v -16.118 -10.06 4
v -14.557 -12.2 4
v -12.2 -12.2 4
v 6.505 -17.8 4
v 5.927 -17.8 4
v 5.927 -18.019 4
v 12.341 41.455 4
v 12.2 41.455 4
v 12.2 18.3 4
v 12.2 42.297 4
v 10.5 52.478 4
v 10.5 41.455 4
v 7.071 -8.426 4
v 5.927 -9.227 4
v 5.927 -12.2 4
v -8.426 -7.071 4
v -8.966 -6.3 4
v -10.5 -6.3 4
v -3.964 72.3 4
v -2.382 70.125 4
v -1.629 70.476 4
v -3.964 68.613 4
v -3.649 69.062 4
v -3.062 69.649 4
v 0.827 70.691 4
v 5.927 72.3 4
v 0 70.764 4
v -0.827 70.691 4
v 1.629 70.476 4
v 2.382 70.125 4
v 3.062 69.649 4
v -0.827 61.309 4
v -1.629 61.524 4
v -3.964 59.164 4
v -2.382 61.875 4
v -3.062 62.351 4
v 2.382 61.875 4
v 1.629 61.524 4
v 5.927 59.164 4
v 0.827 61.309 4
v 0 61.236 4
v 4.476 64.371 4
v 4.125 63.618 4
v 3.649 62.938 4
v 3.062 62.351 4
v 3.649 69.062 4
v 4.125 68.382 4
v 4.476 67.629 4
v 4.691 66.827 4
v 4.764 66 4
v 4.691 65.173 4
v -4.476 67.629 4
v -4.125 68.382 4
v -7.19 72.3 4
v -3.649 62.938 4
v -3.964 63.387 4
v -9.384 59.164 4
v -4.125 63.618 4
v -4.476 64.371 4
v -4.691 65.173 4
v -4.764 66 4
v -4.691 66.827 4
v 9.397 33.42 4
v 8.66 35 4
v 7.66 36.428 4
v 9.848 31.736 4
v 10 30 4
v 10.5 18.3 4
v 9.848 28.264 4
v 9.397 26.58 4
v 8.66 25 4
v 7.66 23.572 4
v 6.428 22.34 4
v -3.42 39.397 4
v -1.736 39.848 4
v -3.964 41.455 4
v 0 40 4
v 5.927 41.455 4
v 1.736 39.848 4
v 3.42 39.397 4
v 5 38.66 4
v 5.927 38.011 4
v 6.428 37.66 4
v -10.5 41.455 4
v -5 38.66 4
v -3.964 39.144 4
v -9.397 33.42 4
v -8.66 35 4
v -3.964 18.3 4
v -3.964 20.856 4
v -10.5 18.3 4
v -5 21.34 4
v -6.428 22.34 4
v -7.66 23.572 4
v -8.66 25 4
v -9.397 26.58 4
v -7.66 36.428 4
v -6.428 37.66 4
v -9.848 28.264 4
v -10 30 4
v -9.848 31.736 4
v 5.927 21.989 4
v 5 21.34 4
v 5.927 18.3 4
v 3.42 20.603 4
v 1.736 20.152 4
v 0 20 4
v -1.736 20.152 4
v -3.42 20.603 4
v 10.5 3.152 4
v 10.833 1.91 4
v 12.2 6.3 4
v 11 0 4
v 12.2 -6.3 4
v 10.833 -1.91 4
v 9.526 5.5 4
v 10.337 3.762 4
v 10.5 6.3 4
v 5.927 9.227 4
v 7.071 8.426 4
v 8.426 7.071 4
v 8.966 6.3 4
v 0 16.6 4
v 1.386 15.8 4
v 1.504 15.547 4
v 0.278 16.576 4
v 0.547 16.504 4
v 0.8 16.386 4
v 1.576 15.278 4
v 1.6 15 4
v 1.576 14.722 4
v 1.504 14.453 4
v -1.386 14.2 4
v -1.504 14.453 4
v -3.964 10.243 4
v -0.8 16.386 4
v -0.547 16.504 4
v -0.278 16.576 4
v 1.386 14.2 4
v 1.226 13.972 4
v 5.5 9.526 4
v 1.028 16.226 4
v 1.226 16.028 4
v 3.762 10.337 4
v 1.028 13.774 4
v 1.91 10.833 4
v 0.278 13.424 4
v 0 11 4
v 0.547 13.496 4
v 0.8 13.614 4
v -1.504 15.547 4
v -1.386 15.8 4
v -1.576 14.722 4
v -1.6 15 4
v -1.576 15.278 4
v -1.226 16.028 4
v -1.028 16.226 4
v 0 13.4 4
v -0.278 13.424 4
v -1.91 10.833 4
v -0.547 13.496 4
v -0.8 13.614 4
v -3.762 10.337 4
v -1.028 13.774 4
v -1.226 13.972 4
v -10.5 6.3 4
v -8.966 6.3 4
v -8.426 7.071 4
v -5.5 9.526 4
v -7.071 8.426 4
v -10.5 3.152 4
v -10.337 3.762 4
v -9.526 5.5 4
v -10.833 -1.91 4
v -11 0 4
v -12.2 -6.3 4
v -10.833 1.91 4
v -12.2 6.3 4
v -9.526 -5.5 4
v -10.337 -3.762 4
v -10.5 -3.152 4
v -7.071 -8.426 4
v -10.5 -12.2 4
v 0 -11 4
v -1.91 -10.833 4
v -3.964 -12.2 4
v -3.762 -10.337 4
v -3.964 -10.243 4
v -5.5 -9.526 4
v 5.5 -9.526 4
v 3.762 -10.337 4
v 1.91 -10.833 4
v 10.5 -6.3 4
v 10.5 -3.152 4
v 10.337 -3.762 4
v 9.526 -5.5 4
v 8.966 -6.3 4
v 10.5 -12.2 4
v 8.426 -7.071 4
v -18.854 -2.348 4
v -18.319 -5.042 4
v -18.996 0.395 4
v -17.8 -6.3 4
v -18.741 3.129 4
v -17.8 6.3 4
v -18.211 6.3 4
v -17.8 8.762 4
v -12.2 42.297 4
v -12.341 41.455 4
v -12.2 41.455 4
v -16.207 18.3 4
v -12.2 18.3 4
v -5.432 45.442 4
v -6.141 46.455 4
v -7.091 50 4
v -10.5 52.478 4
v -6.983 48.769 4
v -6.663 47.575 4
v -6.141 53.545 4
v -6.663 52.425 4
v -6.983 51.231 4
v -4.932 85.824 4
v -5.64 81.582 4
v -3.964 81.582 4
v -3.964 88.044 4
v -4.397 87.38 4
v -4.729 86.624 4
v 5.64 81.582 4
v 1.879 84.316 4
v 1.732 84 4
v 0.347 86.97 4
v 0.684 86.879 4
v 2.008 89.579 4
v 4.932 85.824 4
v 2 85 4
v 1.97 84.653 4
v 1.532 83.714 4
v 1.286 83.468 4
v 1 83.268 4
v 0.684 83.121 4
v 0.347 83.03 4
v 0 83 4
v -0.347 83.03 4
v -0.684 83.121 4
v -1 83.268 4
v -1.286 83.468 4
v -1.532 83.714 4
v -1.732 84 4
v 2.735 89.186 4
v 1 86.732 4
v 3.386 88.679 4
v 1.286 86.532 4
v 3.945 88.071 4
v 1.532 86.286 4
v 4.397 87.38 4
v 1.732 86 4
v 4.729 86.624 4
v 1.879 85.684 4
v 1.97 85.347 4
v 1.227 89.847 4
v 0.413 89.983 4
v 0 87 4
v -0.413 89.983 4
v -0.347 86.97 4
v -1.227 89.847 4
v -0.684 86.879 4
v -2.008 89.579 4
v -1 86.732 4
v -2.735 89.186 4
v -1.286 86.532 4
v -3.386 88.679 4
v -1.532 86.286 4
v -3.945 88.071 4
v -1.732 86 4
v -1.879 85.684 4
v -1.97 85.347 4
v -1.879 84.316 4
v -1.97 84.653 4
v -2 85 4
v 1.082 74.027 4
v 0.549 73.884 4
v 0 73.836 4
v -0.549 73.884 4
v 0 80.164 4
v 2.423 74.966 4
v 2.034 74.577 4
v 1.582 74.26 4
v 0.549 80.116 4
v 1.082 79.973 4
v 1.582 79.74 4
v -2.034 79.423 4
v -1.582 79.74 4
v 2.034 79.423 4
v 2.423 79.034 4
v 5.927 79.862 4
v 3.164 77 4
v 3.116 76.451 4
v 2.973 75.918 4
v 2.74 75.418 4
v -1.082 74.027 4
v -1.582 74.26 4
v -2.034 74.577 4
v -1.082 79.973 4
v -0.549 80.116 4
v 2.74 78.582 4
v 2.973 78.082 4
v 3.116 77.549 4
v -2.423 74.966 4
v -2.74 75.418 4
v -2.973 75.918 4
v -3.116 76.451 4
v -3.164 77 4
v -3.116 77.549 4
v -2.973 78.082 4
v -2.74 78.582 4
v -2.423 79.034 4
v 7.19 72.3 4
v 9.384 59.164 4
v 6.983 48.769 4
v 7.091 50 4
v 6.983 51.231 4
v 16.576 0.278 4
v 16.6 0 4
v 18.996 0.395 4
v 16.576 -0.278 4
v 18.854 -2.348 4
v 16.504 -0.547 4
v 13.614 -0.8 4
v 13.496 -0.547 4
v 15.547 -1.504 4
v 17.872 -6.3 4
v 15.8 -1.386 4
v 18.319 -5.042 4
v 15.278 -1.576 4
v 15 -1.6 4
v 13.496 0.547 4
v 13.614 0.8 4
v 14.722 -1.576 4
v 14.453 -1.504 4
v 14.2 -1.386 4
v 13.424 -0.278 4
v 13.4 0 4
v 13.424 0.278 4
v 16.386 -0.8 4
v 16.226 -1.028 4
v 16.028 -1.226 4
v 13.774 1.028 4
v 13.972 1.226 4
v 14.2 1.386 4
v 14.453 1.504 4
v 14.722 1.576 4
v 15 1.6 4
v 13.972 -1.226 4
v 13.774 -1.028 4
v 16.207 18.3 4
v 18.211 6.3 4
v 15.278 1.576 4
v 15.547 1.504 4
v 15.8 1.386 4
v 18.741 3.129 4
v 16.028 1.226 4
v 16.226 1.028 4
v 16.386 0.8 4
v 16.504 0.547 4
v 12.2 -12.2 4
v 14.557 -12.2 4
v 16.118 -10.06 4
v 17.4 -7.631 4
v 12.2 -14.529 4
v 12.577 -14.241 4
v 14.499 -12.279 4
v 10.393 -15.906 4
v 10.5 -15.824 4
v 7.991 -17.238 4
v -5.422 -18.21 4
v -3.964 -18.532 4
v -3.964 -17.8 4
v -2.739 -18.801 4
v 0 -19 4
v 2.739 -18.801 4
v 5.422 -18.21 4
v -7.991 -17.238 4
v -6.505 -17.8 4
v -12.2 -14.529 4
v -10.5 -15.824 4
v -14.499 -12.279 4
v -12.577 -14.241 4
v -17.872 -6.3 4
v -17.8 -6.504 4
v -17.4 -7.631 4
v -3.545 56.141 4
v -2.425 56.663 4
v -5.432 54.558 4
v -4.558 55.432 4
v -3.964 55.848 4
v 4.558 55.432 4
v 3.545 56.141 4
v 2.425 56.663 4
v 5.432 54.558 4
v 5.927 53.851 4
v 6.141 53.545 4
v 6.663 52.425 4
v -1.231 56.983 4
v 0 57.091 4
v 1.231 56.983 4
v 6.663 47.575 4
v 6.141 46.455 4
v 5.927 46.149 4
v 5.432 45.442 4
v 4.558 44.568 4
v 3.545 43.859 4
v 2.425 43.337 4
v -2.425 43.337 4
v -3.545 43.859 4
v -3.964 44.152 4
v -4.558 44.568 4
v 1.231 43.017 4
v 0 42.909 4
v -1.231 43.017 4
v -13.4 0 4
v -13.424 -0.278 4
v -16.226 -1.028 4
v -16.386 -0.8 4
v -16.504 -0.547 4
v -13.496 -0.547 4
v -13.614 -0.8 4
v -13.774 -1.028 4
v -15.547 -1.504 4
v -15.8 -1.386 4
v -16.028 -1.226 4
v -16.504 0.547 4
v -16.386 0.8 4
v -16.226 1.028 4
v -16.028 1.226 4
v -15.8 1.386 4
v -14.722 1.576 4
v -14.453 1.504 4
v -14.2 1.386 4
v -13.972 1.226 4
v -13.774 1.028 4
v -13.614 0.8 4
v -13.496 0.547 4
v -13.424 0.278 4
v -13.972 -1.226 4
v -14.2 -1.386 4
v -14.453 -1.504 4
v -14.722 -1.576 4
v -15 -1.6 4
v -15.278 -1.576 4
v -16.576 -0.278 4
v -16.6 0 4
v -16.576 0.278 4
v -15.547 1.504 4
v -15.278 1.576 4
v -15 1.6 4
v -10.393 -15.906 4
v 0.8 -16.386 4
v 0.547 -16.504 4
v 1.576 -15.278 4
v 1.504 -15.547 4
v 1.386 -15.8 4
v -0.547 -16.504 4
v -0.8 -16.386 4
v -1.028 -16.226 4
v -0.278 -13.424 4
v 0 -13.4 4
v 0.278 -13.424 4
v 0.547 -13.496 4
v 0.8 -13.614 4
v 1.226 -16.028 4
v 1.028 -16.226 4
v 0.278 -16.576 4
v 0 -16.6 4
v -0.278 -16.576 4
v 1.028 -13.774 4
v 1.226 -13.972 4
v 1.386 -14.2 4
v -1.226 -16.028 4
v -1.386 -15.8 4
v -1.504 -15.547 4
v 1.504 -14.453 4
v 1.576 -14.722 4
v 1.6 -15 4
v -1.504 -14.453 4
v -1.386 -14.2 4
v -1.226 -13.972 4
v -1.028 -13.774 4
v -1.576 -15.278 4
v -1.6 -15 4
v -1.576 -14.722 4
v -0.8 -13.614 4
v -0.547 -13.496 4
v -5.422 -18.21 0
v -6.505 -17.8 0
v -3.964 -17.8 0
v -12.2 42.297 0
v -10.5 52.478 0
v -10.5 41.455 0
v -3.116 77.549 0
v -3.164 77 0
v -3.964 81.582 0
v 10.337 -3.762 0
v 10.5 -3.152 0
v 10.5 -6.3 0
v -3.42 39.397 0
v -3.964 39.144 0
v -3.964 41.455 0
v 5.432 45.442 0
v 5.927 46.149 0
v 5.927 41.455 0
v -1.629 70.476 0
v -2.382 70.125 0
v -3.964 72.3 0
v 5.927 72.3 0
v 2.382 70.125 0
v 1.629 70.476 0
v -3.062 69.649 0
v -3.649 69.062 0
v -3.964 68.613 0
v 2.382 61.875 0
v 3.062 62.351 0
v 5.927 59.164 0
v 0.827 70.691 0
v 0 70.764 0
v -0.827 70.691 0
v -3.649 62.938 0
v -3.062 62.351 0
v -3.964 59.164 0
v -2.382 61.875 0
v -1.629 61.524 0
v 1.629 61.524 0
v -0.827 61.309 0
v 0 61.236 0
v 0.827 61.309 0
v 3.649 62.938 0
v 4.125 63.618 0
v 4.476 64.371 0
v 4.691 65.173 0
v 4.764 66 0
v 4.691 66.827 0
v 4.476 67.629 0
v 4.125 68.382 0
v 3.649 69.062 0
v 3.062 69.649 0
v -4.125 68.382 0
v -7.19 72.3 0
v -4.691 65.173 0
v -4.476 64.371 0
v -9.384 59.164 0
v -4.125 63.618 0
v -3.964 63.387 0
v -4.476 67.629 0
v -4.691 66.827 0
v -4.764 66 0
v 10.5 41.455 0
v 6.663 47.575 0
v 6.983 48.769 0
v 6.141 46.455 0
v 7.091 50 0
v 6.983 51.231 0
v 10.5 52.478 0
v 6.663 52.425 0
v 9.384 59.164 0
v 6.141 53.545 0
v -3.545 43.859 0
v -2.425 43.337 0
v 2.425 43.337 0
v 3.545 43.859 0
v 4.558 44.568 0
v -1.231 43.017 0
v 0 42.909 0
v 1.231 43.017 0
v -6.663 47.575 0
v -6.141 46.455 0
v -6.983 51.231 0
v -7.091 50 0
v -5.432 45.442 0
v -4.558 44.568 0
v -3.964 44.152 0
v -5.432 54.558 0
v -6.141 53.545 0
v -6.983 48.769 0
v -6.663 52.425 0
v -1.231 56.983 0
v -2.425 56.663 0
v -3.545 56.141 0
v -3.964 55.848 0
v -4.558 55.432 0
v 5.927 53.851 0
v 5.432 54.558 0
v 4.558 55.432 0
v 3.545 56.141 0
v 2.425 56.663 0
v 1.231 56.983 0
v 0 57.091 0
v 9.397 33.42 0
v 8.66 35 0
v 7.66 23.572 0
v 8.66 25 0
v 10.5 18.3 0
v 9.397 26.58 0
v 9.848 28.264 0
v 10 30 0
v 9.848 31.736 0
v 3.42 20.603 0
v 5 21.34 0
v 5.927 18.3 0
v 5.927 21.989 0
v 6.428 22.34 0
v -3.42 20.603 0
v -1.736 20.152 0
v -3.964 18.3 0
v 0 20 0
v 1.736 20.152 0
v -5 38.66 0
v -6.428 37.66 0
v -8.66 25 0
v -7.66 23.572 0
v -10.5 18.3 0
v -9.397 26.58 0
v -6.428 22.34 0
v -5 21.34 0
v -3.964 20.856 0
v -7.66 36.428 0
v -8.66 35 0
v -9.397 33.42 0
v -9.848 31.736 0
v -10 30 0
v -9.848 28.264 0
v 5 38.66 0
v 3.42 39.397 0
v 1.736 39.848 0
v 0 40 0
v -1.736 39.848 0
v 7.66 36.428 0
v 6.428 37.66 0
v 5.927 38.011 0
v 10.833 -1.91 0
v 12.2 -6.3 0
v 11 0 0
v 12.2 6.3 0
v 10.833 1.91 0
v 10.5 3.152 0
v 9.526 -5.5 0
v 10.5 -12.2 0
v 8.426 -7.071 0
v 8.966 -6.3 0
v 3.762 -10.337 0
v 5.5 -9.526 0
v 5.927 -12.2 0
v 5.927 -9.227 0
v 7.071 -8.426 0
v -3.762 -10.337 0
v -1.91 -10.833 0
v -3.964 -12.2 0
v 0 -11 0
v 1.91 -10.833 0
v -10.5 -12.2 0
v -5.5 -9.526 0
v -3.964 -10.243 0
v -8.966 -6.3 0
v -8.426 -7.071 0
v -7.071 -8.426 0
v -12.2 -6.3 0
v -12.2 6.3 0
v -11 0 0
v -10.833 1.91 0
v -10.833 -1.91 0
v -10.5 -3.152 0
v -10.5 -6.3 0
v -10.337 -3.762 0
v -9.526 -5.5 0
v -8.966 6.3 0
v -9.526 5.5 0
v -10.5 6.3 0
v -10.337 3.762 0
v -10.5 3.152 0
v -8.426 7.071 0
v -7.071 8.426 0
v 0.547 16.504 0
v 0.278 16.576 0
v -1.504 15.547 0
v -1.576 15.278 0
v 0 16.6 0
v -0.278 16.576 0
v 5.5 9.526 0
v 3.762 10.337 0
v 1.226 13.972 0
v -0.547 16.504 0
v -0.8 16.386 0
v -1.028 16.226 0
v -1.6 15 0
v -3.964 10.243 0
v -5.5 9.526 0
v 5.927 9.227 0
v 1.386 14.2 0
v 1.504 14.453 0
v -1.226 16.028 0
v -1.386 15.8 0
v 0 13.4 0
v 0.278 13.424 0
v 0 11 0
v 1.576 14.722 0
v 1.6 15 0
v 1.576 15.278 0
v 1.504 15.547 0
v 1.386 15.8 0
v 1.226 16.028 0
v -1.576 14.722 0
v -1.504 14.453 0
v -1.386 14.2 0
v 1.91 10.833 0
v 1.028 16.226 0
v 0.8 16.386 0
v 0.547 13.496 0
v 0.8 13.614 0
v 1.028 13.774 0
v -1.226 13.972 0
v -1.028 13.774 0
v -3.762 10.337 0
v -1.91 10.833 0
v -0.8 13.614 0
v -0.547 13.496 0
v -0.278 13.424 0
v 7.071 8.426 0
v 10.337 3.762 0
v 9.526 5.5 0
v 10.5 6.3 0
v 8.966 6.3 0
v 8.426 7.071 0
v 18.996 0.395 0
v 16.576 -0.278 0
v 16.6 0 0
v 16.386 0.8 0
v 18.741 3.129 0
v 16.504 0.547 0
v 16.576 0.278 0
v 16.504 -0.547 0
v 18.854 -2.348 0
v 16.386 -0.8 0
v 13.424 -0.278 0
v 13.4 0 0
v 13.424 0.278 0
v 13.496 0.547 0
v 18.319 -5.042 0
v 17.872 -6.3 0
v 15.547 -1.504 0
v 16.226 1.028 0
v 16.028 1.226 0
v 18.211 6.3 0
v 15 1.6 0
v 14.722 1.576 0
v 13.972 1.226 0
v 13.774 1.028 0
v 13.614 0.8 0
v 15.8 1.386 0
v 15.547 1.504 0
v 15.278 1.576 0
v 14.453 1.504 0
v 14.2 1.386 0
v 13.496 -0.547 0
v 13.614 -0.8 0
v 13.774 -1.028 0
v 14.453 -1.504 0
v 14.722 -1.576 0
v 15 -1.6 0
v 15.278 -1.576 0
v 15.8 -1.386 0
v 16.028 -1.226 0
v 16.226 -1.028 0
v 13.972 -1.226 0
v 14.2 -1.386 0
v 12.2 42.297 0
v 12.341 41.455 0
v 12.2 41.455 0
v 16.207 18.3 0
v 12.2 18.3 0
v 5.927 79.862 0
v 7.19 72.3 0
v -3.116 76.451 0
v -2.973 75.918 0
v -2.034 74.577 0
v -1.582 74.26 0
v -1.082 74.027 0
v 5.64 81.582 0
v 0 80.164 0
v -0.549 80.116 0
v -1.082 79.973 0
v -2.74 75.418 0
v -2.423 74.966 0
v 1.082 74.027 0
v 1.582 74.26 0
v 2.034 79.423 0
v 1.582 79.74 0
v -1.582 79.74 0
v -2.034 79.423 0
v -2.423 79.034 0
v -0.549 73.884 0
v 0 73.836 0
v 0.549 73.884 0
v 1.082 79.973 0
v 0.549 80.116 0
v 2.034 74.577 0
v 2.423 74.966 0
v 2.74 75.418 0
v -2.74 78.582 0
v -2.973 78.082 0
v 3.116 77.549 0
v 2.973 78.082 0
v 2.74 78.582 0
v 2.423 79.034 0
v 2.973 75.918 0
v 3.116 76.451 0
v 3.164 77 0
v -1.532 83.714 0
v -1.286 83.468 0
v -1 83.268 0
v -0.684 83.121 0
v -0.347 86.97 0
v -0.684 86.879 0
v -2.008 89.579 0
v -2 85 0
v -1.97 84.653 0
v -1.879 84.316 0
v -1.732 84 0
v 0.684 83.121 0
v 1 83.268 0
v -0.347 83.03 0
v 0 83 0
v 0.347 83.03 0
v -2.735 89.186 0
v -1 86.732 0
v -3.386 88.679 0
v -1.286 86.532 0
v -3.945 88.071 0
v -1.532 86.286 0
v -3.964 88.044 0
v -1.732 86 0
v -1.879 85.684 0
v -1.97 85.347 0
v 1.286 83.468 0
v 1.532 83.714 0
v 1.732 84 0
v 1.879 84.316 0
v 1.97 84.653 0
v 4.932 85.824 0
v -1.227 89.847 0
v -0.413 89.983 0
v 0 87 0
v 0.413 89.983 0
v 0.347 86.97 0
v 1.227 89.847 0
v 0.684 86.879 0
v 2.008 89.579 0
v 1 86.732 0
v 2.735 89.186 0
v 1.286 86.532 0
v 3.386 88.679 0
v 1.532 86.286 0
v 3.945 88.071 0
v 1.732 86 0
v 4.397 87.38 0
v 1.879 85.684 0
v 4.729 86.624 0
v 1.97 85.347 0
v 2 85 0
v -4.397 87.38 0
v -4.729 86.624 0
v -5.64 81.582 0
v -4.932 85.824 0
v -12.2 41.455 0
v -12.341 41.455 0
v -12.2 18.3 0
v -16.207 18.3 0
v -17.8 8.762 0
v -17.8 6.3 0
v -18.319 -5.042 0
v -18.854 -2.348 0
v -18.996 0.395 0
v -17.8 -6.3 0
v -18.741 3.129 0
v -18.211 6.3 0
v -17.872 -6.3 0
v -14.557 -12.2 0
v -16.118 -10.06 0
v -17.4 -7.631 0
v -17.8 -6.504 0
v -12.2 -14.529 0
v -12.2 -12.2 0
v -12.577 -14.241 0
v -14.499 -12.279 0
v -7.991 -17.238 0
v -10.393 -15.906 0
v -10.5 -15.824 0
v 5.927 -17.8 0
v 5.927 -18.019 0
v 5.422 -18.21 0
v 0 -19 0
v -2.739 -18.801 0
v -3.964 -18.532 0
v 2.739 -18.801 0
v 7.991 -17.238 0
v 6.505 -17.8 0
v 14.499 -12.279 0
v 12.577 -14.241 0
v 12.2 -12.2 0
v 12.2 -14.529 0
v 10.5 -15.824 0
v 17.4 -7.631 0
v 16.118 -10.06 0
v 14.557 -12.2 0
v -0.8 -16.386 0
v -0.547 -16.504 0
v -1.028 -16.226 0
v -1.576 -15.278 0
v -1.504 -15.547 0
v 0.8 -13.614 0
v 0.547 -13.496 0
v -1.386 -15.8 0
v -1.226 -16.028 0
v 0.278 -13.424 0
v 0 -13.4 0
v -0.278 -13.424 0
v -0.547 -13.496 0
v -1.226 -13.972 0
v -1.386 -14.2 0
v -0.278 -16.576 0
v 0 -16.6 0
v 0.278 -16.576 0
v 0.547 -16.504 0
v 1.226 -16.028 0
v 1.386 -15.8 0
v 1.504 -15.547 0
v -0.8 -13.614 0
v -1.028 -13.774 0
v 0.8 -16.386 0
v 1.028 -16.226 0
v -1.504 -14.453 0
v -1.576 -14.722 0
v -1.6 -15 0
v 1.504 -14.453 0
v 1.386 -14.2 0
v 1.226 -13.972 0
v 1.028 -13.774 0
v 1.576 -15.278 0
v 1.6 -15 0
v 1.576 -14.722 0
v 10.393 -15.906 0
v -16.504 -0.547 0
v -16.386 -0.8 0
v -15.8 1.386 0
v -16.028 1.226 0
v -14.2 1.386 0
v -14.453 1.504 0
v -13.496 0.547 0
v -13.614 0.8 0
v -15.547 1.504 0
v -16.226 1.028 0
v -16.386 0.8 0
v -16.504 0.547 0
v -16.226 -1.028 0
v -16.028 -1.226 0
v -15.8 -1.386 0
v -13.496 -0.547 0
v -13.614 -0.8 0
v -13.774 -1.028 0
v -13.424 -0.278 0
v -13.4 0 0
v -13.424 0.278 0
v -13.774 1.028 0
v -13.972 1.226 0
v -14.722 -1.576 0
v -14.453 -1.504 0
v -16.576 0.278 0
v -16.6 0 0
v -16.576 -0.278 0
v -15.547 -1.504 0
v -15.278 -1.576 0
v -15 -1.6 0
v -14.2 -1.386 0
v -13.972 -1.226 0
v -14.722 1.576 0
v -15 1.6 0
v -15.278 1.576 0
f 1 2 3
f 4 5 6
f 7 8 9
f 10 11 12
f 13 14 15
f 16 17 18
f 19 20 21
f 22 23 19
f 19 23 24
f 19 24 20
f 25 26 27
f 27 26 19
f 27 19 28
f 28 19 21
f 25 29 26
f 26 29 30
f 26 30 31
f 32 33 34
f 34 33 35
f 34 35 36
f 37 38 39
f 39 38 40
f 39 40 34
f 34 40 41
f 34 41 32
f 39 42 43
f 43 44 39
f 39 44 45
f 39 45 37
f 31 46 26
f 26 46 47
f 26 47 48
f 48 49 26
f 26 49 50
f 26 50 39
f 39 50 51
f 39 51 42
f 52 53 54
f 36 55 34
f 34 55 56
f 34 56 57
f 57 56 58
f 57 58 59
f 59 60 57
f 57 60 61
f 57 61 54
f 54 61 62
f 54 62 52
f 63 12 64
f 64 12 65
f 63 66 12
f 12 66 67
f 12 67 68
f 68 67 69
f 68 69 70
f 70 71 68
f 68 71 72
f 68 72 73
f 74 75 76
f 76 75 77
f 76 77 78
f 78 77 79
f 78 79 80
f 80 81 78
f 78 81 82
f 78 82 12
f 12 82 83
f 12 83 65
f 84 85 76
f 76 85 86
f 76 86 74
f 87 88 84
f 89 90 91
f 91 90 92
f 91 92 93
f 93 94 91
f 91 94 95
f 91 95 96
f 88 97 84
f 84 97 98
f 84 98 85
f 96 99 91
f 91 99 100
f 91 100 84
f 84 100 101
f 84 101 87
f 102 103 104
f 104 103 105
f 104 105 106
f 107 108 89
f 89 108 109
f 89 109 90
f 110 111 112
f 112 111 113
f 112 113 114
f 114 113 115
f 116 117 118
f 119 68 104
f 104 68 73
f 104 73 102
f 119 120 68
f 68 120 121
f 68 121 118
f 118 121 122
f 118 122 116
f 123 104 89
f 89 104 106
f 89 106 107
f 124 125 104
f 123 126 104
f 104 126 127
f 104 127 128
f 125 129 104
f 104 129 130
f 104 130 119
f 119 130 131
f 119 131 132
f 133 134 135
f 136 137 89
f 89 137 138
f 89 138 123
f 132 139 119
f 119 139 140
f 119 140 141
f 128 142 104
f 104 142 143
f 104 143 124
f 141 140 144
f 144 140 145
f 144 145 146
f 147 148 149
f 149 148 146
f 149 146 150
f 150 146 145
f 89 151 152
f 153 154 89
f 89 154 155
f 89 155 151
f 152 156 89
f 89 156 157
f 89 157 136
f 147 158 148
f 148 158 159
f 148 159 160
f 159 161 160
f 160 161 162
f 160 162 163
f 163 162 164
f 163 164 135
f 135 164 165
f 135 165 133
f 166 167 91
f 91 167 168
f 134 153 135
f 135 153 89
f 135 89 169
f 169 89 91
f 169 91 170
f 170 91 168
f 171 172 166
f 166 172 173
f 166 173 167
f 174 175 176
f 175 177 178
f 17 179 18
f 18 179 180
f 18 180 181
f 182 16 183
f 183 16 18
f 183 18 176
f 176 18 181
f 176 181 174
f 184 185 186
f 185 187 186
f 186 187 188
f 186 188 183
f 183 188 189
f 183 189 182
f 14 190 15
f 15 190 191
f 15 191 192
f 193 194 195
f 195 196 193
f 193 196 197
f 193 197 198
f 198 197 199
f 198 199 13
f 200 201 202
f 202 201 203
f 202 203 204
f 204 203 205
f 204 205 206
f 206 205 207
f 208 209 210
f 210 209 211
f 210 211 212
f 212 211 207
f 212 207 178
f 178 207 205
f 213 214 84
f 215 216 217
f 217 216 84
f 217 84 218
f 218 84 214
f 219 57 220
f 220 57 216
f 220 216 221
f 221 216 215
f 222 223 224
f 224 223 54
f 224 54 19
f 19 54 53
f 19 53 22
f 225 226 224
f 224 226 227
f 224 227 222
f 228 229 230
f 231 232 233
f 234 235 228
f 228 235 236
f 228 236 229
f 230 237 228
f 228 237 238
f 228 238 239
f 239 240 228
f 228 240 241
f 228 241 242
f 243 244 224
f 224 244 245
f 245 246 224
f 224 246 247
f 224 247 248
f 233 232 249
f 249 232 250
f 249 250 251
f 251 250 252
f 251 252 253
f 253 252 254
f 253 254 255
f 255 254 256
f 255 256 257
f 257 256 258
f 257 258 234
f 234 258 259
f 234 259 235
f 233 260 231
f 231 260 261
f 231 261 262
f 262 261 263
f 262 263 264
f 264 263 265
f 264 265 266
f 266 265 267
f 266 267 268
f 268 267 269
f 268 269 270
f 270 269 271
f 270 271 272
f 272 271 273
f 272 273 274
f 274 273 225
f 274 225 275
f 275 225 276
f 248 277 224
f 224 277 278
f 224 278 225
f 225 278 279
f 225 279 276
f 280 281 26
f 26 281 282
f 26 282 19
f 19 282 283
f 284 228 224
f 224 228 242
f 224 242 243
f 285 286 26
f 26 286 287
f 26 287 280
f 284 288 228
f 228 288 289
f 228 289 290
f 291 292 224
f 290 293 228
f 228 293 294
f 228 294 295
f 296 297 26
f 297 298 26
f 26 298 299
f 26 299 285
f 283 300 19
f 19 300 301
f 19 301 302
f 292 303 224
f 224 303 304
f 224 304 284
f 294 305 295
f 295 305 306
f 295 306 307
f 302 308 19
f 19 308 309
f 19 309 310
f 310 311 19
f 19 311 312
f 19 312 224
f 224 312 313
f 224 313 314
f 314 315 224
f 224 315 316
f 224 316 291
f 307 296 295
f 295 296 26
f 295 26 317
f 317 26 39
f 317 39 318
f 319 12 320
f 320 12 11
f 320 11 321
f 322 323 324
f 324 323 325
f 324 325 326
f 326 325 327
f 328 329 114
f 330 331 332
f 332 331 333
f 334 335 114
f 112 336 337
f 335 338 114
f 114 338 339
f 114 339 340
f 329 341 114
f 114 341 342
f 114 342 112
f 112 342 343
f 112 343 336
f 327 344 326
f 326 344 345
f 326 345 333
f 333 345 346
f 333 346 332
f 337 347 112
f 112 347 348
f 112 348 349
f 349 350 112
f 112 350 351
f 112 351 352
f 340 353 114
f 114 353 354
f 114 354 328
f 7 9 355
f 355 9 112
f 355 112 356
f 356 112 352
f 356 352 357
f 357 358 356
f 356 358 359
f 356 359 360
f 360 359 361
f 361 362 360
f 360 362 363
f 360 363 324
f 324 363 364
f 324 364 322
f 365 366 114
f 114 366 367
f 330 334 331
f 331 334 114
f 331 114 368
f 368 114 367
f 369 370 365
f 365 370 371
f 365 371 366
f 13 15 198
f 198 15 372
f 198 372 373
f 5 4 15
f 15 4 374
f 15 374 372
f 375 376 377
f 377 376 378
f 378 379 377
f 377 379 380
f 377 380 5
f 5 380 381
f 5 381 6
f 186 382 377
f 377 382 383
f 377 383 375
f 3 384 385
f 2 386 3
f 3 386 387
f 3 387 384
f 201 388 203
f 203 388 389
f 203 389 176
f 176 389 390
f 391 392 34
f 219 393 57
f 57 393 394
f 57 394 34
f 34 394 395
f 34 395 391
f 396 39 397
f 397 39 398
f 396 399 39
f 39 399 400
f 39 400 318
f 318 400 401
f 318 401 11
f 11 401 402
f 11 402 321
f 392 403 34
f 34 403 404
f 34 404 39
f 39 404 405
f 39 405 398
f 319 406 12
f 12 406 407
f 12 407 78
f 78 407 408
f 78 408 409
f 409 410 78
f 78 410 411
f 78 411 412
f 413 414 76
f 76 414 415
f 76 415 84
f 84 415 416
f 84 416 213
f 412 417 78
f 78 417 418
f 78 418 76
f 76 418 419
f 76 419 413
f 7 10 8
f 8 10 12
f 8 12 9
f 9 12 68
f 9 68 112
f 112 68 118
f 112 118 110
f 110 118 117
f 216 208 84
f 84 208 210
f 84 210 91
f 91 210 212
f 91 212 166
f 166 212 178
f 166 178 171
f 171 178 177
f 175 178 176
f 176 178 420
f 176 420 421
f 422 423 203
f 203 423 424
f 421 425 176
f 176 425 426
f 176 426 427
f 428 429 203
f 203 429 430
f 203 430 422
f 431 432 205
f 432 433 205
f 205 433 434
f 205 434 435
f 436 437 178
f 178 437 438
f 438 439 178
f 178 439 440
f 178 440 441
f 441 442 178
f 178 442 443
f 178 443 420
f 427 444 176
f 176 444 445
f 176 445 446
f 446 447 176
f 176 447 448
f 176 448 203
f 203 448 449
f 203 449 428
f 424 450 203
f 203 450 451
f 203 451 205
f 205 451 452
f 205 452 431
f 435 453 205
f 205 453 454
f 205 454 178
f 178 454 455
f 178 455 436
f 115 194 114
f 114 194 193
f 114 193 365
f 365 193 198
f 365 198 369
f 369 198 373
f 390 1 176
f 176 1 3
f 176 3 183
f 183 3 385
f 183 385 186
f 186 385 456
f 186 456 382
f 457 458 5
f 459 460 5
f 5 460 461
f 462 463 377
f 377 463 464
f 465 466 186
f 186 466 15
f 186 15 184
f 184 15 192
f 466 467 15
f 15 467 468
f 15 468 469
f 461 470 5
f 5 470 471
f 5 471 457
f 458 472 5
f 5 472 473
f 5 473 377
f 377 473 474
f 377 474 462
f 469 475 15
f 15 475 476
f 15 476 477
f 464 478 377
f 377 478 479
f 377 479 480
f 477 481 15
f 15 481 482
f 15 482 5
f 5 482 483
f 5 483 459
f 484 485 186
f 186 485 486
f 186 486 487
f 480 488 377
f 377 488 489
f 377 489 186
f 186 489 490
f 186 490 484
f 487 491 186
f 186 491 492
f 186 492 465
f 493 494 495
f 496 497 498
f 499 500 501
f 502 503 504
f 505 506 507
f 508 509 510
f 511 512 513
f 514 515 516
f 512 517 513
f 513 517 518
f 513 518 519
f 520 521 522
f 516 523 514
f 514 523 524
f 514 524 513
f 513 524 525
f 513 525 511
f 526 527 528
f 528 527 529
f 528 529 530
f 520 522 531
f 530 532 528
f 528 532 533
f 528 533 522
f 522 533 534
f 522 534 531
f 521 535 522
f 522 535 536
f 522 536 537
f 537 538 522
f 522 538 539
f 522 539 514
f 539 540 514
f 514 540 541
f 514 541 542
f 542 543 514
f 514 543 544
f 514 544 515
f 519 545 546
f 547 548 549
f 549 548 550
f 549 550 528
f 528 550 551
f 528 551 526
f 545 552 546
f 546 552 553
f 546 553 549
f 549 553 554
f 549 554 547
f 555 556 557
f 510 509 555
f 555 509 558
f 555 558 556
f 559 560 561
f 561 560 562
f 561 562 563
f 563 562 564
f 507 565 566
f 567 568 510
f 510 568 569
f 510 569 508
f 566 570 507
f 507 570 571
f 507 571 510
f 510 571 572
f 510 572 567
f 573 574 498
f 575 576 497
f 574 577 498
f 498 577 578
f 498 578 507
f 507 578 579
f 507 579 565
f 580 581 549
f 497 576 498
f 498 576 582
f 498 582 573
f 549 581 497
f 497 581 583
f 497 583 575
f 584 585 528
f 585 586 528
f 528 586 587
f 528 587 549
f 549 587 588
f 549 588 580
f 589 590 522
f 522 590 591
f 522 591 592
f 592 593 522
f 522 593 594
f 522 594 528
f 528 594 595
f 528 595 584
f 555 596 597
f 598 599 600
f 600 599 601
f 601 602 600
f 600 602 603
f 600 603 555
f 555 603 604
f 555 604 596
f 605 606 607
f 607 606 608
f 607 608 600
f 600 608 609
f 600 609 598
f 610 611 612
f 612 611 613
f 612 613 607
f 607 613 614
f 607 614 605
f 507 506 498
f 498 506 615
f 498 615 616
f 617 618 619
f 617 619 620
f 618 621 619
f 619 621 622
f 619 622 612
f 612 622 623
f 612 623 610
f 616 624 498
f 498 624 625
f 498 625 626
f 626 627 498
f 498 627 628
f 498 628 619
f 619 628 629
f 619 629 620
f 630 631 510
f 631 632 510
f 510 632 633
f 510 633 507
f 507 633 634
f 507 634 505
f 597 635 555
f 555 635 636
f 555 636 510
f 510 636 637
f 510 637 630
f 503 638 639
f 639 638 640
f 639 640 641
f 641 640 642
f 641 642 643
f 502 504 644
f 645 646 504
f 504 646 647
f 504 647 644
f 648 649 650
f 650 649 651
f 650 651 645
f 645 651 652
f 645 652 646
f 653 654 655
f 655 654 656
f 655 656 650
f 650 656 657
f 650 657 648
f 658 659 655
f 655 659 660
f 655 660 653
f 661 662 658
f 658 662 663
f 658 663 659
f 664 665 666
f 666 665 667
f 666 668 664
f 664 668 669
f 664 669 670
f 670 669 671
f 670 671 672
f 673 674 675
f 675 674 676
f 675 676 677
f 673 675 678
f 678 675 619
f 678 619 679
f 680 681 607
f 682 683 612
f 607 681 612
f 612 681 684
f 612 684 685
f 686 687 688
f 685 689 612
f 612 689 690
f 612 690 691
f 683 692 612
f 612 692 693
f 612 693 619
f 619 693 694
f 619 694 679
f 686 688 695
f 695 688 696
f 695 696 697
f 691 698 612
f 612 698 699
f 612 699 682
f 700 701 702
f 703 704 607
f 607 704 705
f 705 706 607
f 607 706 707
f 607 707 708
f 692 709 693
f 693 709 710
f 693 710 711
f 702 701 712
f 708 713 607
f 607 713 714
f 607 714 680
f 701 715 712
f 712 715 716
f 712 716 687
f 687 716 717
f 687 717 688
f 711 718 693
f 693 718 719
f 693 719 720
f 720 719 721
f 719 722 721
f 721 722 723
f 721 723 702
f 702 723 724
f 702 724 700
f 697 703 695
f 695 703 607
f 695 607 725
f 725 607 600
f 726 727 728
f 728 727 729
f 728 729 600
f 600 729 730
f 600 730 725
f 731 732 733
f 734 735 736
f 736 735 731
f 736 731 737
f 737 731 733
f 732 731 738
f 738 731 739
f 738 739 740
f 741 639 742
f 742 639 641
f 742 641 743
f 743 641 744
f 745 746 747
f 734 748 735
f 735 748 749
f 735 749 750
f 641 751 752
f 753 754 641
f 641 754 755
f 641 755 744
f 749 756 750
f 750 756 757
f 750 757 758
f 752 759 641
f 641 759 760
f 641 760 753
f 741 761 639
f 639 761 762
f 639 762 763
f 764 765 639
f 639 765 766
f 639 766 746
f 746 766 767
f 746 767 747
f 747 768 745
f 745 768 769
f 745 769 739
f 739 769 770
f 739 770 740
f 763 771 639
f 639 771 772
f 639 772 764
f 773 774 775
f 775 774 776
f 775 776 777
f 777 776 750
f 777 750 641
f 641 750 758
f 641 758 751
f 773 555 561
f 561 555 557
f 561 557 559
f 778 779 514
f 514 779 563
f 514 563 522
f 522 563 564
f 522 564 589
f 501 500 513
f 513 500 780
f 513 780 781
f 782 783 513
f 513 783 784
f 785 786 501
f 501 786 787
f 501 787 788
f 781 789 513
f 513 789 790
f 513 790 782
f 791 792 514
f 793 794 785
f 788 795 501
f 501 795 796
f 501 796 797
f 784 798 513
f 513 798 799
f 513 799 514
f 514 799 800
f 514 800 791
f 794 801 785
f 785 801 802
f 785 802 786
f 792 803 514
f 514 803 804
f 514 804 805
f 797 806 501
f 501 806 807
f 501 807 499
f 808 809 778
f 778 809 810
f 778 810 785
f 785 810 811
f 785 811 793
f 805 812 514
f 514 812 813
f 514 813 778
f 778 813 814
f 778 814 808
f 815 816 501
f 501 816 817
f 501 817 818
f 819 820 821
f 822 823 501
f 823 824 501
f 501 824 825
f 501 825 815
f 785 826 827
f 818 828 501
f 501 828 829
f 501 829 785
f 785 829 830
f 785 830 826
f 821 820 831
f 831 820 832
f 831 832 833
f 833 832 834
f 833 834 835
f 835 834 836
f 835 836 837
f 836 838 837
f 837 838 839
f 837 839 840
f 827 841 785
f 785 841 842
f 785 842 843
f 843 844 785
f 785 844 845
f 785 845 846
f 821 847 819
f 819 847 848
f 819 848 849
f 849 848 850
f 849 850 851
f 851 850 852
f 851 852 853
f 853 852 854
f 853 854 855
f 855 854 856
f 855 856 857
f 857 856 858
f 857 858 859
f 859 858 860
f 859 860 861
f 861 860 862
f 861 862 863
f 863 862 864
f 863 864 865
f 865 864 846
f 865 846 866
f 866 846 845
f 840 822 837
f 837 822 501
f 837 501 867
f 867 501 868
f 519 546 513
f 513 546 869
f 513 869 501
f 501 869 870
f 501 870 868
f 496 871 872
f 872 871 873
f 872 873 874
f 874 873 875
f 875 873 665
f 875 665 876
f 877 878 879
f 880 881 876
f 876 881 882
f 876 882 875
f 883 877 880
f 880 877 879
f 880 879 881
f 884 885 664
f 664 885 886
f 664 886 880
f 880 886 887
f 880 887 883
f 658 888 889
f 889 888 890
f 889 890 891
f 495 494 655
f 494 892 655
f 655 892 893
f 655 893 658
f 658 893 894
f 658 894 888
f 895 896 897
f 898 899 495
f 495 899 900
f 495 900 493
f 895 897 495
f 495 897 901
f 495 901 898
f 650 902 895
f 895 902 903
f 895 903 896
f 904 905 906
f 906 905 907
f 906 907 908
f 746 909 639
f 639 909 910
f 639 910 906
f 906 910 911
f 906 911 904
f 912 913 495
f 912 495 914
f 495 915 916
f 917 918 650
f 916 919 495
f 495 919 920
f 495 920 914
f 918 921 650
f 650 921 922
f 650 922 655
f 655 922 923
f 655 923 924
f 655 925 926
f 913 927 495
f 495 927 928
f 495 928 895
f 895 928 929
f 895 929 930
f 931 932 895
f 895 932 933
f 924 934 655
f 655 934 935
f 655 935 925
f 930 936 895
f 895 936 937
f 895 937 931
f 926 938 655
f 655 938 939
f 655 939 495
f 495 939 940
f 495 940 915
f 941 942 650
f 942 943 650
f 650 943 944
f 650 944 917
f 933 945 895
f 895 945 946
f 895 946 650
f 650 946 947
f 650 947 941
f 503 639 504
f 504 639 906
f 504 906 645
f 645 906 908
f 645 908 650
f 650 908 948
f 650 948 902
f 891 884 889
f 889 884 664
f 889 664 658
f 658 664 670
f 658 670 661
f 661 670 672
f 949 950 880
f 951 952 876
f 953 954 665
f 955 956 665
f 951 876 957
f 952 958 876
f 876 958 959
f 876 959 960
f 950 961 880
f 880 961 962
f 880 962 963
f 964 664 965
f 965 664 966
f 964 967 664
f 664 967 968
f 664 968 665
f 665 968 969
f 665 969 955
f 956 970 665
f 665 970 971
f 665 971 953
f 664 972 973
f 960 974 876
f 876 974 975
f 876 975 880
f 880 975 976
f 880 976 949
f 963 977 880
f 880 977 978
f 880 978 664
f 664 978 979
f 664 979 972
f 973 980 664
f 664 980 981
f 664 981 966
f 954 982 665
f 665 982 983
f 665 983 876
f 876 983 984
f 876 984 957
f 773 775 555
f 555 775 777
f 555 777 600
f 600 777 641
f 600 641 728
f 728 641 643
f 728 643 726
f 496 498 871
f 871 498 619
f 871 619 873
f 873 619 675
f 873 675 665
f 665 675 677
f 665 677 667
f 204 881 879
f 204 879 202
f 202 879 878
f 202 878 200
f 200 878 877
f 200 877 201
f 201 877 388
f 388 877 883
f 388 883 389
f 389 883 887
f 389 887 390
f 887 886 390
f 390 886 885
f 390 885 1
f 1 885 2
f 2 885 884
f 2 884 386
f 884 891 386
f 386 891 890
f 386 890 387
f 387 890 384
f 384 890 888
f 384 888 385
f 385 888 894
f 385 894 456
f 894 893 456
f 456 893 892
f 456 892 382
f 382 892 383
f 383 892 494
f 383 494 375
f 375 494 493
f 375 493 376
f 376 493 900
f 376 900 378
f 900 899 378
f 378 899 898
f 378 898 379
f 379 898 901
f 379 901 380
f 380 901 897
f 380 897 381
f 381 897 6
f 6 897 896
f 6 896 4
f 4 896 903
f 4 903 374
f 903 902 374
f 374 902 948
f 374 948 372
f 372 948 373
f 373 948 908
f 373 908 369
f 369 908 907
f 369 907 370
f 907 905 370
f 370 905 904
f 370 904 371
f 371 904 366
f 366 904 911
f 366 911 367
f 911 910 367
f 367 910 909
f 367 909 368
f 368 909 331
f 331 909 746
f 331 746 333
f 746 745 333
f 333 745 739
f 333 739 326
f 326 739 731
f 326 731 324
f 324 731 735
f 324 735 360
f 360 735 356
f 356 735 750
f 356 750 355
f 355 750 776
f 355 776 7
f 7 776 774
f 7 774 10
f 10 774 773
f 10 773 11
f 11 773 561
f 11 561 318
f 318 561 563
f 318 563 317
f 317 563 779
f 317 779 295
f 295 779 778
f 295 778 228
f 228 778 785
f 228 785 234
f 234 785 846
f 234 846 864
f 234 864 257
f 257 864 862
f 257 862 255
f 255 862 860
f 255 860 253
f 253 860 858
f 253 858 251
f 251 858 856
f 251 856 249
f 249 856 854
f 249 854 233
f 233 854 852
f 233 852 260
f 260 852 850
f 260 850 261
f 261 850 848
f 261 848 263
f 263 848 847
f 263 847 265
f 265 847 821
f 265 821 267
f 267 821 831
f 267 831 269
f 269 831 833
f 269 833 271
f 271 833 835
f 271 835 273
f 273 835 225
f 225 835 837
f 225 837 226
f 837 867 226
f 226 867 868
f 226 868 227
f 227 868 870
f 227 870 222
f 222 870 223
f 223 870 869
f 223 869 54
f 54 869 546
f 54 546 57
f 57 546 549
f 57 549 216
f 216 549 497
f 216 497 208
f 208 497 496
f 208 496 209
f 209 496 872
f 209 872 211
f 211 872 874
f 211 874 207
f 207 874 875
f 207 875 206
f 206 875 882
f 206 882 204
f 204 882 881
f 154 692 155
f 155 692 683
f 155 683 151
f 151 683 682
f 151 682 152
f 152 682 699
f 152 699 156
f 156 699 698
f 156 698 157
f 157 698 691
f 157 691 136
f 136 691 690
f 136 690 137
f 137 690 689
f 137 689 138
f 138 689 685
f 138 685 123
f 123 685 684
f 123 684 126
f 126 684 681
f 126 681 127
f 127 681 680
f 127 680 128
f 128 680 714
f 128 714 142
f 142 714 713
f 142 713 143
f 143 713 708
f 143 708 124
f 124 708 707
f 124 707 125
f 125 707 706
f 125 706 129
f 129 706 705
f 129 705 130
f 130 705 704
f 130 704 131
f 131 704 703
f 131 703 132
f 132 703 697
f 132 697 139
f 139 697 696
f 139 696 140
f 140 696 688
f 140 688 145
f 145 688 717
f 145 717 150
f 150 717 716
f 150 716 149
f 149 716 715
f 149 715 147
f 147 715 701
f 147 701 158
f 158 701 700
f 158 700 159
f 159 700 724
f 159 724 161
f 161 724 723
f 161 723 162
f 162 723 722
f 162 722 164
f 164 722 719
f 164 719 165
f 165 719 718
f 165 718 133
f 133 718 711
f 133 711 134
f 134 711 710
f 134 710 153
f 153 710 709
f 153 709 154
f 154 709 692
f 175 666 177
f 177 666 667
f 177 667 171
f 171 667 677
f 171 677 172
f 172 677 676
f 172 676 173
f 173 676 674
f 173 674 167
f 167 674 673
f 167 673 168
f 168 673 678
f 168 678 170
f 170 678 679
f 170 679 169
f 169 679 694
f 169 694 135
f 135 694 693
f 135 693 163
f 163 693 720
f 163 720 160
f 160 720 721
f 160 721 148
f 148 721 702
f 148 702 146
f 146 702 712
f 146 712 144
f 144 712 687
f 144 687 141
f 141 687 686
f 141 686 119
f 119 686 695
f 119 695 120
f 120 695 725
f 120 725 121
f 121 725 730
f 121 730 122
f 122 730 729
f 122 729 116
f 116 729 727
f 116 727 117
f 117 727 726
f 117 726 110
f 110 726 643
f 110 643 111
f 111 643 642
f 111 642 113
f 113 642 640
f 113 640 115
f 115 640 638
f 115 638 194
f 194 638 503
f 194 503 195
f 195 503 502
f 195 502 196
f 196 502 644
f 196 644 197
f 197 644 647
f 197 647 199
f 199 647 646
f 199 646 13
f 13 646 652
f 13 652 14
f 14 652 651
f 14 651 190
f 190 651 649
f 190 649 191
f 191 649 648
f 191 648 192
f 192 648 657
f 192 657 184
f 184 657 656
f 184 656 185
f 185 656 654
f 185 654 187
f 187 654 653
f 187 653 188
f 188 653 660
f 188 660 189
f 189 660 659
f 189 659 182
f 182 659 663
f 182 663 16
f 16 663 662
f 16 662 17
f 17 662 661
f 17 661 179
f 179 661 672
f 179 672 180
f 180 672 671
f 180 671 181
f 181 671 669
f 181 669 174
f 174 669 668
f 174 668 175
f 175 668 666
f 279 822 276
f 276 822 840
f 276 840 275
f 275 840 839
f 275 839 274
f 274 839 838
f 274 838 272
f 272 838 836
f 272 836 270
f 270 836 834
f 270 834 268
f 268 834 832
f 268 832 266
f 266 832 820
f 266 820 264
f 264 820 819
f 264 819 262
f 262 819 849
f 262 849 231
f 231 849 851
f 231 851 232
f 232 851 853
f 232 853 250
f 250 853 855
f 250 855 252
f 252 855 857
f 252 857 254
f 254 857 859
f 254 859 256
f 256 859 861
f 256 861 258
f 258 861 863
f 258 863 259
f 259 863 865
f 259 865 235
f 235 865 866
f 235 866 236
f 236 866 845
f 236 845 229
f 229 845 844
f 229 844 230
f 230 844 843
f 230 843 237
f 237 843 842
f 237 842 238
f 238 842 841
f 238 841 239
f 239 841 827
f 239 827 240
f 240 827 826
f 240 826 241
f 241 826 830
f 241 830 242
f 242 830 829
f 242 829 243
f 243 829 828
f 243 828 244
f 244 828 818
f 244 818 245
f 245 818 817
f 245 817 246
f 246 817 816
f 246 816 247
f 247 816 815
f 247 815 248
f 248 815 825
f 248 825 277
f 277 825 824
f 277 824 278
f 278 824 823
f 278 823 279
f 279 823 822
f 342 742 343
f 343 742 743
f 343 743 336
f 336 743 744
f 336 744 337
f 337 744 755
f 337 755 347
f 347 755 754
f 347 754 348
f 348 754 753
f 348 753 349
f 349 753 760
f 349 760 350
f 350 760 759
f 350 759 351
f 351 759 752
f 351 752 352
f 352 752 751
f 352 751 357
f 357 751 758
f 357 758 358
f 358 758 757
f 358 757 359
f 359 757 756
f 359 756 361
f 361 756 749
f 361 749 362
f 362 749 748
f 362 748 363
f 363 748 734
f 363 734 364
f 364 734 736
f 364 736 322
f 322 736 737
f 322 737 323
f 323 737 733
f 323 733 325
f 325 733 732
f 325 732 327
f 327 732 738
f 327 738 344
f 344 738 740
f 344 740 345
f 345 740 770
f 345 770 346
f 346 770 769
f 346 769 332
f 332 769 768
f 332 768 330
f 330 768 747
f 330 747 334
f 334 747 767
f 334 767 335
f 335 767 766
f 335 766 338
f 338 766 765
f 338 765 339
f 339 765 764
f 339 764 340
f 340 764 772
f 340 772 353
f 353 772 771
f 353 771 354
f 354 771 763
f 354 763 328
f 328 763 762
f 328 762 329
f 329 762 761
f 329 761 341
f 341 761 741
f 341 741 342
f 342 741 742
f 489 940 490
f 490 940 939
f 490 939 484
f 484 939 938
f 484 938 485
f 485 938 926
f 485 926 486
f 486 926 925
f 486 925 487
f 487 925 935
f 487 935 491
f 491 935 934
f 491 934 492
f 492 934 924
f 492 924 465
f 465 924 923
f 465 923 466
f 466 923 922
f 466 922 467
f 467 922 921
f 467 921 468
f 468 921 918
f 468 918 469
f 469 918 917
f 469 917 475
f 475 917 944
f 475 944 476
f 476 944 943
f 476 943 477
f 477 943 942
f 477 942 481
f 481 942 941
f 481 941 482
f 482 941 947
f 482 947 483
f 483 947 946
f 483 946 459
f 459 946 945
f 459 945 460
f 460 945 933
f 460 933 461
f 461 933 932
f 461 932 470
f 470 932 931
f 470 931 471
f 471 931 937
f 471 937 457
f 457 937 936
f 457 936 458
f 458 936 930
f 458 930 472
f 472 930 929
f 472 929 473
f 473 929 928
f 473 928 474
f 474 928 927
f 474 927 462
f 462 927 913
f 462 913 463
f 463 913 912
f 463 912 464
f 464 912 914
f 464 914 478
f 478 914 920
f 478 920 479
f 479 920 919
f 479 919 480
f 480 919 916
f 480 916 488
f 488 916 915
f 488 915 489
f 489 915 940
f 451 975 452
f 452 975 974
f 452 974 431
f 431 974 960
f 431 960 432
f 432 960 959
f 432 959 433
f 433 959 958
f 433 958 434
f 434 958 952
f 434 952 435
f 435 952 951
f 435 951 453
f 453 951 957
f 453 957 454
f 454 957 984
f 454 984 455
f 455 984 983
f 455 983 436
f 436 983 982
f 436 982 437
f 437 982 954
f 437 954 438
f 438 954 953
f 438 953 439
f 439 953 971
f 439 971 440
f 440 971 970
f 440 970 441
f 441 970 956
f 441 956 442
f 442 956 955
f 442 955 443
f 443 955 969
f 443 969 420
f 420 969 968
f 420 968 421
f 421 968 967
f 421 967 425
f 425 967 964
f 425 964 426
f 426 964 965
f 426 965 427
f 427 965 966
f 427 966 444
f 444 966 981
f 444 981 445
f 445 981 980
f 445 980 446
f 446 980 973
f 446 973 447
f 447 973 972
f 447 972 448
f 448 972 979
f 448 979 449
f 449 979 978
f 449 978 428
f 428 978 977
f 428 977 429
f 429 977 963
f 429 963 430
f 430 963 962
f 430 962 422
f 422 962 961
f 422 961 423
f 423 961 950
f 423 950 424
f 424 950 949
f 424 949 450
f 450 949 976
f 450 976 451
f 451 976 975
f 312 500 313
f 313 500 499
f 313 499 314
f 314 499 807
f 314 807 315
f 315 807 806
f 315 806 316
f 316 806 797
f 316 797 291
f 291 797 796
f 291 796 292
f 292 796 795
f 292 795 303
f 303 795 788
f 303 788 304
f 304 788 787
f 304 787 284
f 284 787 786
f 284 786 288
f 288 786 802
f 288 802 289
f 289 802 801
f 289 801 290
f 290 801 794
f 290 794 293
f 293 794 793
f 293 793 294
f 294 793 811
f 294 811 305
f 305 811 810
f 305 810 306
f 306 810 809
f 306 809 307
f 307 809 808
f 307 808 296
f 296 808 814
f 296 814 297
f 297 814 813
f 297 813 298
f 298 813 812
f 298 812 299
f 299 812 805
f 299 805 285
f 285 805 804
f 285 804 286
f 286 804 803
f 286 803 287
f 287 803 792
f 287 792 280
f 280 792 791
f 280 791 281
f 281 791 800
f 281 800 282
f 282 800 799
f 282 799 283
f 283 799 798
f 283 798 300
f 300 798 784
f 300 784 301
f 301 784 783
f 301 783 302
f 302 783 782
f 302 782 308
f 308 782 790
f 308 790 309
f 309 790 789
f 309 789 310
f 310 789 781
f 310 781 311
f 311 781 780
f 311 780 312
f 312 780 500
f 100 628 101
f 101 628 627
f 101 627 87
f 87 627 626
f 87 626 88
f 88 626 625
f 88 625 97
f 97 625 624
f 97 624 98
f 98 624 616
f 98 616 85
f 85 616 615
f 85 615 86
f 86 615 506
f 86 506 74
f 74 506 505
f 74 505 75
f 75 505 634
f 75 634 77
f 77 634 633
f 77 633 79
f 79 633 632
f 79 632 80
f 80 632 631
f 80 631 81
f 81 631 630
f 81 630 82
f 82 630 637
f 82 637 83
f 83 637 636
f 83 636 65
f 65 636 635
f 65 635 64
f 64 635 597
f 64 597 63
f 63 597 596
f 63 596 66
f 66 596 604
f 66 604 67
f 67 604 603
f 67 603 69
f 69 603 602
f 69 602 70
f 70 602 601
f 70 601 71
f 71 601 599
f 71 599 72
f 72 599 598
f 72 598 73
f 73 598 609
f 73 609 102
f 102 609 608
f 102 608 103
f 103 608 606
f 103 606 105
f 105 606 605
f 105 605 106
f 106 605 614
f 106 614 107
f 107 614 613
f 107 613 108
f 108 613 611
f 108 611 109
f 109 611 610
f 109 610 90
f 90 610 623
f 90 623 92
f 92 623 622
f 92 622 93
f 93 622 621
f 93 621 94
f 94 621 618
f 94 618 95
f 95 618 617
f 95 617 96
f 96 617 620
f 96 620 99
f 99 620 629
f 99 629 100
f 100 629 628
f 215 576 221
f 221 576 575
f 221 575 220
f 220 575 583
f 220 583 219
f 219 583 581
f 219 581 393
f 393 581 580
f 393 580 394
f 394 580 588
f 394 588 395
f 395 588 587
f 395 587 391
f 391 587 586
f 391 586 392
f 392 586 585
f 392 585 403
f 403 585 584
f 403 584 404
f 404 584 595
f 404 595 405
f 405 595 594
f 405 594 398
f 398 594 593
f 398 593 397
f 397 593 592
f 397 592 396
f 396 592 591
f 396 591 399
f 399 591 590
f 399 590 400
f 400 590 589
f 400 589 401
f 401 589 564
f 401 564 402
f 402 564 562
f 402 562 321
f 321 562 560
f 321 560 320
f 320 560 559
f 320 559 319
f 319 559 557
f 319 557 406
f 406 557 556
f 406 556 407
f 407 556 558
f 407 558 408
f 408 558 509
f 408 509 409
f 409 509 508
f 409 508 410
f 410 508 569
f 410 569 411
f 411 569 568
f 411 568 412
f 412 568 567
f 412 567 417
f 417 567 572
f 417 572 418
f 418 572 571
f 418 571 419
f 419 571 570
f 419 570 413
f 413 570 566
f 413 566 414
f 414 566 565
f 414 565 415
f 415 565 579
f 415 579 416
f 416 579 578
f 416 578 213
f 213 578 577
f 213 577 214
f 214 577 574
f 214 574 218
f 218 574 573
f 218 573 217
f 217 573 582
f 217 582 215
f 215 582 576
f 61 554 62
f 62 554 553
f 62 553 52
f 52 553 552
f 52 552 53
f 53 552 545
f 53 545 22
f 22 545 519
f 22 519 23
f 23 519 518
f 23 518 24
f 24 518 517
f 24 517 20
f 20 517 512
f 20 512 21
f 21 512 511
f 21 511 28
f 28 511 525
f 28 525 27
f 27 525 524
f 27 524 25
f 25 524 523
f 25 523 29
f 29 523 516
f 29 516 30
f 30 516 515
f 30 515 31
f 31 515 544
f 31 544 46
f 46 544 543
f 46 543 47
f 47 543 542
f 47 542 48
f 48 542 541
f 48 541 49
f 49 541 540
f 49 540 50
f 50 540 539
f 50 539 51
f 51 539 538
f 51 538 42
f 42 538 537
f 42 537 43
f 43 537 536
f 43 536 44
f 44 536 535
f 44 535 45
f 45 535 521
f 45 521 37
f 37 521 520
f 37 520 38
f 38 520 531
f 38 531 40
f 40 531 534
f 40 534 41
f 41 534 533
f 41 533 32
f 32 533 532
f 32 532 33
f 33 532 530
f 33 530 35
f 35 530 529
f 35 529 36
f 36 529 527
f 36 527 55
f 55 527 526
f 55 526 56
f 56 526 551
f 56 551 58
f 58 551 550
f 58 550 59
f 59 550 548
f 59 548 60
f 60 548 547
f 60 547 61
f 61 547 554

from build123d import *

# Parameters (mm, degrees)
ESQUISSE1_R        = 1.6
ESQUISSE1_R_2      = 11
ESQUISSE1_R_3      = 2
ESQUISSE1_R_4      = 3.163636364
ESQUISSE1_R_5      = 10
ESQUISSE1_R_6      = 7.090909091
ESQUISSE1_R_7      = 4.763636364
BOSS_EXTRU_1_DEPTH = 4


with BuildPart() as part:
    # Esquisse1 → Boss.-Extru.1 (new body)
    with BuildSketch(Plane.XY):
        with BuildLine():
            Line((-18.740511786, 3.129411765), (-4.931713628, 85.823529412))
            ThreePointArc((-4.931713628, 85.823529412), (0, 90), (4.931713628, 85.823529412))
            Line((4.931713628, 85.823529412), (18.740511786, 3.129411765))
            ThreePointArc((18.740511786, 3.129411765), (0, -19), (-18.740511786, 3.129411765))
        make_face()
        with Locations((0, 15)):
            Circle(ESQUISSE1_R, mode=Mode.SUBTRACT)
        with Locations((15, 0)):
            Circle(ESQUISSE1_R, mode=Mode.SUBTRACT)
        with Locations((0, -15)):
            Circle(ESQUISSE1_R, mode=Mode.SUBTRACT)
        with Locations((-15, 0)):
            Circle(ESQUISSE1_R, mode=Mode.SUBTRACT)
        Circle(ESQUISSE1_R_2, mode=Mode.SUBTRACT)
        with Locations((0, 85)):
            Circle(ESQUISSE1_R_3, mode=Mode.SUBTRACT)
        with Locations((0, 77)):
            Circle(ESQUISSE1_R_4, mode=Mode.SUBTRACT)
        with Locations((0, 30)):
            Circle(ESQUISSE1_R_5, mode=Mode.SUBTRACT)
        with Locations((0, 50)):
            Circle(ESQUISSE1_R_6, mode=Mode.SUBTRACT)
        with Locations((0, 66)):
            Circle(ESQUISSE1_R_7, mode=Mode.SUBTRACT)
    extrude(amount=BOSS_EXTRU_1_DEPTH)


solid = part.part
